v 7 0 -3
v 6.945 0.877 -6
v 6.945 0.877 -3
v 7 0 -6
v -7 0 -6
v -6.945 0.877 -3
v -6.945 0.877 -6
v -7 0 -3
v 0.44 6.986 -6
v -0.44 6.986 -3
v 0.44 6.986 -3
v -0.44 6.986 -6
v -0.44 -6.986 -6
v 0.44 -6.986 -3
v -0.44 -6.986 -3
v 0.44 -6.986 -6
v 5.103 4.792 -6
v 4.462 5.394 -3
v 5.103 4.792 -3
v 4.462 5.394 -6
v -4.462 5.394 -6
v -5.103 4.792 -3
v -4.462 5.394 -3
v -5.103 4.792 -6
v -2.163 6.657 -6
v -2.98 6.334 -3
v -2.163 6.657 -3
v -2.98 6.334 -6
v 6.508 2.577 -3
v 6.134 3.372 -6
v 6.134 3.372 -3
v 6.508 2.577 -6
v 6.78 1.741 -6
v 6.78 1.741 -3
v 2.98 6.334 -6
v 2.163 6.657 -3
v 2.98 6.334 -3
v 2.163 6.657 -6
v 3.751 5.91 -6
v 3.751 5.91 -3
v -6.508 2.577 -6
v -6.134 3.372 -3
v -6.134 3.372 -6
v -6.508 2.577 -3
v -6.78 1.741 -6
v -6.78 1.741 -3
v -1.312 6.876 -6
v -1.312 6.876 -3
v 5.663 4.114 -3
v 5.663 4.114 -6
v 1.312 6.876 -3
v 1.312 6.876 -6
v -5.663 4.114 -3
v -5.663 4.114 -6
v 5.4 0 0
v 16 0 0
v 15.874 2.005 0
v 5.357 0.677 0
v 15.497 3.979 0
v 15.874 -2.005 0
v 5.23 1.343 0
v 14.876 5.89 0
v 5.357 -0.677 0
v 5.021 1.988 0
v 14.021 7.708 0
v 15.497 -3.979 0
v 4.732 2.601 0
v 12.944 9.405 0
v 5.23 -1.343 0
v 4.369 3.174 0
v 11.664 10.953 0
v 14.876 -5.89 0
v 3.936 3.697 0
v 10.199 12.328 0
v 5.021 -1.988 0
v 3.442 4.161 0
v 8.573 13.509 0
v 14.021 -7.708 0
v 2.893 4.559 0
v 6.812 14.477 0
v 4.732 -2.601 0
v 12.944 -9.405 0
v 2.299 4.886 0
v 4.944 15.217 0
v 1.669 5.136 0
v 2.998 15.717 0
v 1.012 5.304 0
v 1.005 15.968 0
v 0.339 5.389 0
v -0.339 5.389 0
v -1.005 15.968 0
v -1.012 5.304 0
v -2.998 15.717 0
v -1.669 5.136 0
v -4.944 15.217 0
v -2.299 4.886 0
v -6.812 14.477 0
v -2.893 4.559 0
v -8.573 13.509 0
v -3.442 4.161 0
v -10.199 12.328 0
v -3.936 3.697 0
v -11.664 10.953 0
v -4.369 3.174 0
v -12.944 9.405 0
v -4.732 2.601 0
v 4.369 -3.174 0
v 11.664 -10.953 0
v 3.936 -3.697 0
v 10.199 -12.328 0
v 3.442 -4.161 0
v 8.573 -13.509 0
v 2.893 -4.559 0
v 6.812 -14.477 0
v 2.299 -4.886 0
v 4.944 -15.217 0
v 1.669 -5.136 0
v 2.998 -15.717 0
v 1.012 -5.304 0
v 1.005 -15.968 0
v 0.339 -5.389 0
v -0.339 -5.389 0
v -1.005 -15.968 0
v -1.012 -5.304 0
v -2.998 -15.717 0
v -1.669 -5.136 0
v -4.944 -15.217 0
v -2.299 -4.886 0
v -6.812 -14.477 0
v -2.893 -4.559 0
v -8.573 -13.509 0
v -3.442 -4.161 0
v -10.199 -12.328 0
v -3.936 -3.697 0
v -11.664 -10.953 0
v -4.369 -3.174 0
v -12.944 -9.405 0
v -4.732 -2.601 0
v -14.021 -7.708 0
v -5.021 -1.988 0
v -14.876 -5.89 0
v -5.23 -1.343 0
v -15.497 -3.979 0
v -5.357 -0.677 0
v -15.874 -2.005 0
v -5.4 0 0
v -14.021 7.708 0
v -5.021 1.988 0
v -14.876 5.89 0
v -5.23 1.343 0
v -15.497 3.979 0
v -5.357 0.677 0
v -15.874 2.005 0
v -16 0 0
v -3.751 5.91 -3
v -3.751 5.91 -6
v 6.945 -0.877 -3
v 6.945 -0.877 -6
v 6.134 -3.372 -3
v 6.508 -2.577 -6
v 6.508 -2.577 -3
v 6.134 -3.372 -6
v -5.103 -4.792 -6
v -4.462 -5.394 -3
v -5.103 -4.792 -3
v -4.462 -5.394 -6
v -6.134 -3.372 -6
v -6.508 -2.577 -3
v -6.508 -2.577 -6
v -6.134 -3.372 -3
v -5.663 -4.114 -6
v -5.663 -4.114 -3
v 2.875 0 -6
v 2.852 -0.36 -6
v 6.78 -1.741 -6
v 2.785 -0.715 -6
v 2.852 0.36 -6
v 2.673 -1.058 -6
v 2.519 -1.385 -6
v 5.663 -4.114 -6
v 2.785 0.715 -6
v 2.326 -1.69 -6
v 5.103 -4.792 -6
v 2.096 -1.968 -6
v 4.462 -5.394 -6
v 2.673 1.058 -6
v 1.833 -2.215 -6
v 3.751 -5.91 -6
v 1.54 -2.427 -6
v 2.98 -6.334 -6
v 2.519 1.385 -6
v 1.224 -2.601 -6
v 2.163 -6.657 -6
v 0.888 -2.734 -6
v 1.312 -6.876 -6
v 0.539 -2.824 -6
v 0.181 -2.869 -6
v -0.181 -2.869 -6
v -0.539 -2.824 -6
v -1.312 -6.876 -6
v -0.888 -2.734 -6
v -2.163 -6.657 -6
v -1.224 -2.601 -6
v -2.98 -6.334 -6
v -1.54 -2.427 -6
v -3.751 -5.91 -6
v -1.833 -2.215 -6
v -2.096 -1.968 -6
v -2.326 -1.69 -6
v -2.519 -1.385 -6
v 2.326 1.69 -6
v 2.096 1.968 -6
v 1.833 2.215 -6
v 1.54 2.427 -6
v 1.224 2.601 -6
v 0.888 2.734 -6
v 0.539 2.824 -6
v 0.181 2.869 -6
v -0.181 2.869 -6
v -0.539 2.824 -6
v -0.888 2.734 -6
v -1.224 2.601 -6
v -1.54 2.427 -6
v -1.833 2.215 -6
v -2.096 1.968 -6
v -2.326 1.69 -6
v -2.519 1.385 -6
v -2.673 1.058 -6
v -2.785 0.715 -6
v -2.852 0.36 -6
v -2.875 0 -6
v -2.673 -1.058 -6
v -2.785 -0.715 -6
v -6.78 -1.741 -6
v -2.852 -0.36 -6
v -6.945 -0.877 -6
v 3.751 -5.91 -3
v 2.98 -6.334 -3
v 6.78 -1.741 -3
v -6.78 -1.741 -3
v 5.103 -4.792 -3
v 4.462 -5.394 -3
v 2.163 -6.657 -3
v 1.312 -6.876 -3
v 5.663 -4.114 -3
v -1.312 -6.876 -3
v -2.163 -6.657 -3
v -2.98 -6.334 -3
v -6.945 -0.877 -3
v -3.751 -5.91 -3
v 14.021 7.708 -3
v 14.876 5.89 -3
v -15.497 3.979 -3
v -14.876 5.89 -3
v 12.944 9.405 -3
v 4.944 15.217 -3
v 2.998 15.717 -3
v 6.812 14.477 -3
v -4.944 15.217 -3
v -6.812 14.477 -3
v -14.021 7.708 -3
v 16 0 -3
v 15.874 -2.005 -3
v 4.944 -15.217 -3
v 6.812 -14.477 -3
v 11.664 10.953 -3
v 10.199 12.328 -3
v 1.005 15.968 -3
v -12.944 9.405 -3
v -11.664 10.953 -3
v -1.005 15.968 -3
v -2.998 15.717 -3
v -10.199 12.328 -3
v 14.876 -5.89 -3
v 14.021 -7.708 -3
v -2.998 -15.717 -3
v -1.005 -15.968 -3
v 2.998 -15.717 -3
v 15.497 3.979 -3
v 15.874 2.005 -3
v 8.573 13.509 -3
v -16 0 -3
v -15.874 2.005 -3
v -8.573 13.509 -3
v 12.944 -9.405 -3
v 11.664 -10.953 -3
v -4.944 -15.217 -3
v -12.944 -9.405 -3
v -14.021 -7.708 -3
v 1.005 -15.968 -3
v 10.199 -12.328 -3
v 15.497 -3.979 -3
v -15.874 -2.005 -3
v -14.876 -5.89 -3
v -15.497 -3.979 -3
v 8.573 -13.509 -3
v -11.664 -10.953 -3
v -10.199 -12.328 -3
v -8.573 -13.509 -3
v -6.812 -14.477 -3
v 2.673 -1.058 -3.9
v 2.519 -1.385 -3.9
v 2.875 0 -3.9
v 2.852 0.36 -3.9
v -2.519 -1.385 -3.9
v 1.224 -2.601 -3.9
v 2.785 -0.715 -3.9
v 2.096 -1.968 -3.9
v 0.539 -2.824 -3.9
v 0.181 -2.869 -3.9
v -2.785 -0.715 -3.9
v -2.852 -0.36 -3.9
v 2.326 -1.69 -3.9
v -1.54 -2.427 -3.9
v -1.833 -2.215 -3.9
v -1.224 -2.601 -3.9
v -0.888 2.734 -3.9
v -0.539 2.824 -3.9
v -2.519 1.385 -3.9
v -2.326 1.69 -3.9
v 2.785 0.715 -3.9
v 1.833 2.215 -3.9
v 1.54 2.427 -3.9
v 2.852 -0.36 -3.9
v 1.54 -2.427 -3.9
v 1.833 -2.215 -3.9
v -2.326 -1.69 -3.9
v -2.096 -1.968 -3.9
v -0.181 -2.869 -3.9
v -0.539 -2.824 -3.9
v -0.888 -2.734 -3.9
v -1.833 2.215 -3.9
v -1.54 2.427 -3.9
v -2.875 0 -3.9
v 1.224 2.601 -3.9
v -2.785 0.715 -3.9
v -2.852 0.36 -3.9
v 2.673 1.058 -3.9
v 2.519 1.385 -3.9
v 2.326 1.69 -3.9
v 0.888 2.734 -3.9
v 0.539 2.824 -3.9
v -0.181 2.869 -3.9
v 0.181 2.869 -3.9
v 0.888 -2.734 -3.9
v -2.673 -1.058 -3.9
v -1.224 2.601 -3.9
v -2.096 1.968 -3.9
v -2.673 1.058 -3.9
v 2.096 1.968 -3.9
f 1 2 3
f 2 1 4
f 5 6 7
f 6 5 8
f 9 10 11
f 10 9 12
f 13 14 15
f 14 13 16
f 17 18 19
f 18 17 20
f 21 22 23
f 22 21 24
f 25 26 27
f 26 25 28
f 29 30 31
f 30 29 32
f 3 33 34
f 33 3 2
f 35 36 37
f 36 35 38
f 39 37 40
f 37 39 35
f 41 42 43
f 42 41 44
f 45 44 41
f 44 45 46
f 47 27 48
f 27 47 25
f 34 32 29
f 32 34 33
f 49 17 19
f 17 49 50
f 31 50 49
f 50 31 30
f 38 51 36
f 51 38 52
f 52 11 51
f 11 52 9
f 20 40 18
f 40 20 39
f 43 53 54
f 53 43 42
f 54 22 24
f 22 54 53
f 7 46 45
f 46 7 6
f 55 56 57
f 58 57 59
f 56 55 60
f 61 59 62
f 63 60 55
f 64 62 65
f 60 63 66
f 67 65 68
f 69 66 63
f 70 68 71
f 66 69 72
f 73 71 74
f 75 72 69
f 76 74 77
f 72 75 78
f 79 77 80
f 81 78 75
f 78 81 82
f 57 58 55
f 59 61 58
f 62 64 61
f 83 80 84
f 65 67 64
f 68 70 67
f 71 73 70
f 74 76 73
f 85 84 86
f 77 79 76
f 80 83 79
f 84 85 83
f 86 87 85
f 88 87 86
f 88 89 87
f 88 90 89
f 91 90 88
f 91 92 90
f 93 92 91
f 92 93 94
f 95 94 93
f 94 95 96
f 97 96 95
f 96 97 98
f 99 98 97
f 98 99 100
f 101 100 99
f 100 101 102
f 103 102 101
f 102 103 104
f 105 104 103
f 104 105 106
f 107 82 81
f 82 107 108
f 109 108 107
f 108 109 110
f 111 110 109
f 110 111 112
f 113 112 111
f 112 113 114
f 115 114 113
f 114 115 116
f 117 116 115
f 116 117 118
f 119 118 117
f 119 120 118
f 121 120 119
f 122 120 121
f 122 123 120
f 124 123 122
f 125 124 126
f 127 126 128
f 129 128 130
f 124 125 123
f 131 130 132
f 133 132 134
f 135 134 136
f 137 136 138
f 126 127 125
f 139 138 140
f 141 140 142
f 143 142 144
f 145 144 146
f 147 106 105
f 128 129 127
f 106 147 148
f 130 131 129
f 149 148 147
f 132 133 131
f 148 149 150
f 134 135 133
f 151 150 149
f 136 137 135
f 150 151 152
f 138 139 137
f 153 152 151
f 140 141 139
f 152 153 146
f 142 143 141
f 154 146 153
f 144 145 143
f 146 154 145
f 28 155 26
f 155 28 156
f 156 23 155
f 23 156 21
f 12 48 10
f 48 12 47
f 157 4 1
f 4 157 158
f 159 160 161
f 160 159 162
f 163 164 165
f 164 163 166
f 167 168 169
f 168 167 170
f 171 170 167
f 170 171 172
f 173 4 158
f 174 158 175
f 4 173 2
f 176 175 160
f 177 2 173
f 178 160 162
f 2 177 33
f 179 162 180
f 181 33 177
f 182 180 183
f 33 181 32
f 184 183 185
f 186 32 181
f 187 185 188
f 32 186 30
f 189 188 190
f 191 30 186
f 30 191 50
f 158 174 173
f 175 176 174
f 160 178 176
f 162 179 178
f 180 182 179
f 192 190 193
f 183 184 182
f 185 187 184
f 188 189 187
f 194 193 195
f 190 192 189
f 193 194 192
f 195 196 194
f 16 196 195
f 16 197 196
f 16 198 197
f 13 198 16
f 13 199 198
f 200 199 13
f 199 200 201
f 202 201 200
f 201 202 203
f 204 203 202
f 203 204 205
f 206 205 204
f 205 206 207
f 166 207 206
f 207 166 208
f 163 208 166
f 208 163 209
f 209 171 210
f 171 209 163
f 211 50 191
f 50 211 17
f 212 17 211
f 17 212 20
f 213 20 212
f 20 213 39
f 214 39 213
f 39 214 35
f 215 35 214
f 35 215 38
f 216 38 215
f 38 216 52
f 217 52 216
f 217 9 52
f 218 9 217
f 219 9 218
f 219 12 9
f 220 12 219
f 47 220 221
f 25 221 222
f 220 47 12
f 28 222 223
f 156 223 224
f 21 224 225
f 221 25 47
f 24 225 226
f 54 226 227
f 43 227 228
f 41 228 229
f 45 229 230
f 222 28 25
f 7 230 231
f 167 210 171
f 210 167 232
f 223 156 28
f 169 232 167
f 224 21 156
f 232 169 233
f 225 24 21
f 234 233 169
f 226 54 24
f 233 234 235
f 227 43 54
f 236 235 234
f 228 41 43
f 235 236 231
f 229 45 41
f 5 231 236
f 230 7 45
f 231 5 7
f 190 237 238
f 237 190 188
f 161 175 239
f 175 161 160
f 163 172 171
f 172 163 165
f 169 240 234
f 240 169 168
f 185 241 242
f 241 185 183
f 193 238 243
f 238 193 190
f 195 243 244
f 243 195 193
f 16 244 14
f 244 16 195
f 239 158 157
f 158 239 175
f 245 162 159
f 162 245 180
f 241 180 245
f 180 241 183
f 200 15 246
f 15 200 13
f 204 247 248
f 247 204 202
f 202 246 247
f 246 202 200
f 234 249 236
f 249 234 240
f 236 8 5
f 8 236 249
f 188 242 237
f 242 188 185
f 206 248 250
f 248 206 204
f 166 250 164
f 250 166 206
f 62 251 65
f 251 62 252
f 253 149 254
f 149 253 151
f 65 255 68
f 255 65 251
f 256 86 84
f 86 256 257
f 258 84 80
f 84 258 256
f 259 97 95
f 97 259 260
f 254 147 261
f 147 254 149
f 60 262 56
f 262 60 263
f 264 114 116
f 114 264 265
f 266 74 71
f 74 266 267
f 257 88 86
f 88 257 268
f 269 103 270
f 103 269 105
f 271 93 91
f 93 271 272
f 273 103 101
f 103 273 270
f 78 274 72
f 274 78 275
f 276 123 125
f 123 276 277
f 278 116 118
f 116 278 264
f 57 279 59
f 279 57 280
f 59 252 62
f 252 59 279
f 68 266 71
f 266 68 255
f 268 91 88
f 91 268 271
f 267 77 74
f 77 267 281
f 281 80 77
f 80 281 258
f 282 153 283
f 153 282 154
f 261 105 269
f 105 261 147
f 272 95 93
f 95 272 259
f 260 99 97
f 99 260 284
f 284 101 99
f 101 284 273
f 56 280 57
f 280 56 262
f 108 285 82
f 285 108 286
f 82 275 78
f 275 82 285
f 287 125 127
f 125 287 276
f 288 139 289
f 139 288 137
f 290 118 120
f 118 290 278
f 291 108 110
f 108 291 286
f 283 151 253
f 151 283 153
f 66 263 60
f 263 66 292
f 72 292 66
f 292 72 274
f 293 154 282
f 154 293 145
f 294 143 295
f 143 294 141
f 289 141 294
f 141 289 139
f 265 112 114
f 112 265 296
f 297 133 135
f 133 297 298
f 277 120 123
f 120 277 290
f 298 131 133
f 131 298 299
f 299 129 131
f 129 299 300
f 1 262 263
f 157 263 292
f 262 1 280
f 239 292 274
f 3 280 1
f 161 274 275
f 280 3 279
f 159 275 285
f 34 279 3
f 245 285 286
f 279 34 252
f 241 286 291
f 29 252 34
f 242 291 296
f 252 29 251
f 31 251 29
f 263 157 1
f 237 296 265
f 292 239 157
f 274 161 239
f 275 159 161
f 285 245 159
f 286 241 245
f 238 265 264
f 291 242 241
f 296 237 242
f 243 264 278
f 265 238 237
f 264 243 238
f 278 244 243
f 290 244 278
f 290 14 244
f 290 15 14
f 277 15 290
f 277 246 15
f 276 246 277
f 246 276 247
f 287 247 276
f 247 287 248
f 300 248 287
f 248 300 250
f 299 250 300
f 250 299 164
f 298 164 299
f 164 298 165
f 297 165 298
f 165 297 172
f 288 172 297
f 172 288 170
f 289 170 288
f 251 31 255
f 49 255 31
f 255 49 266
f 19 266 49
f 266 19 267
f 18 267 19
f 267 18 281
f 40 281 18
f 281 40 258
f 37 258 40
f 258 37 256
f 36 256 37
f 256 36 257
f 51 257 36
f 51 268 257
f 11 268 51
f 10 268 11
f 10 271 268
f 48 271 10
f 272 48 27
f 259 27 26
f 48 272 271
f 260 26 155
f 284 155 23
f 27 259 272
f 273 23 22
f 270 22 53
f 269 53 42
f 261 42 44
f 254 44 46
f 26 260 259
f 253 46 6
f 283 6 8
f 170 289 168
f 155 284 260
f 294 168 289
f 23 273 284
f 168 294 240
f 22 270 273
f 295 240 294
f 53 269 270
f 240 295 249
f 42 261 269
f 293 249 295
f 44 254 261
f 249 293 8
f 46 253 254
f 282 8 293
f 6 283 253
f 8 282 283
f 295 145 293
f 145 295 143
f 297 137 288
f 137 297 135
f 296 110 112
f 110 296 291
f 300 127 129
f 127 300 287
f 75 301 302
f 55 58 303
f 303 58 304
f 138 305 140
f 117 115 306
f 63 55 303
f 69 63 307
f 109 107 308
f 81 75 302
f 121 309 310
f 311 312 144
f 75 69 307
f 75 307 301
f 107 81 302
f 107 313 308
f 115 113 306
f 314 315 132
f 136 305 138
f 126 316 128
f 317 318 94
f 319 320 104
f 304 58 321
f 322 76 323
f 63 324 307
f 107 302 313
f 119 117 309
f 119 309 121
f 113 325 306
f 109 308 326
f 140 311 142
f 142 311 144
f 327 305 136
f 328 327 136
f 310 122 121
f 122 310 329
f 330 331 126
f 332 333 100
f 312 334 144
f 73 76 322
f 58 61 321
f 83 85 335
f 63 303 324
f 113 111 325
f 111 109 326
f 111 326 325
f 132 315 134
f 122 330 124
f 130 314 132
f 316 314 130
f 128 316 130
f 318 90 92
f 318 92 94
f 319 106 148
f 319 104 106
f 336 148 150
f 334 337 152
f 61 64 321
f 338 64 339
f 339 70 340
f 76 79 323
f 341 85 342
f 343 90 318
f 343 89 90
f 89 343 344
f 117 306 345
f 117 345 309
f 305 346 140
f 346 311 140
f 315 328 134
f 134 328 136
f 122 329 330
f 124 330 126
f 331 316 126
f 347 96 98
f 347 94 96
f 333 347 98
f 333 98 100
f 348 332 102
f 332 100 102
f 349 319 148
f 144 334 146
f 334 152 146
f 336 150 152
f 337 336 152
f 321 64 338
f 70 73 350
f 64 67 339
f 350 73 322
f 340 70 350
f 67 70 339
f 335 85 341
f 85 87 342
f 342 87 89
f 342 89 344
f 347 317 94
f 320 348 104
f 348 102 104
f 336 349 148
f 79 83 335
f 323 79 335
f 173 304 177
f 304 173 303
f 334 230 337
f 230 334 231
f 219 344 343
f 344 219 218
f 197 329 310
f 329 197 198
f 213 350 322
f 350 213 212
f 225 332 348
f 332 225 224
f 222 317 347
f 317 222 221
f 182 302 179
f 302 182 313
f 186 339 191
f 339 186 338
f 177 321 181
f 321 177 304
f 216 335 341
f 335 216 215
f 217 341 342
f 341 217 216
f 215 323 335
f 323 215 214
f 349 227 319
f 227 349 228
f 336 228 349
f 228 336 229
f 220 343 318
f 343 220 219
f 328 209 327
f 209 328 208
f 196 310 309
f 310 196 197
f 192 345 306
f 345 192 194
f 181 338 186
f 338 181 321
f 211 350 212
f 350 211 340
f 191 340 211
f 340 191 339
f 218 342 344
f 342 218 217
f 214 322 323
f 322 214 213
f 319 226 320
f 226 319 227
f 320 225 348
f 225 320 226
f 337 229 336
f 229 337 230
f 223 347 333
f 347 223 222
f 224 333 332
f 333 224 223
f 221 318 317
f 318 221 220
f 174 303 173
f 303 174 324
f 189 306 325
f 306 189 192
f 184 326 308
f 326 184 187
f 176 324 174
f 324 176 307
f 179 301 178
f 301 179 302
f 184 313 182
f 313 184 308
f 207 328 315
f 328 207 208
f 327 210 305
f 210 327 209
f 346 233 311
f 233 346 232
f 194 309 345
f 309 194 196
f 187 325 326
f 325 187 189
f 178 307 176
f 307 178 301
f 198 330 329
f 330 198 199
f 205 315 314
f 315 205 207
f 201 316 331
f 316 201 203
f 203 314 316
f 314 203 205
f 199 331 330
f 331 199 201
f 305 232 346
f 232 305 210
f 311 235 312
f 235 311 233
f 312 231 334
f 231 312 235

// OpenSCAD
$fn = 50;


difference() {
	union() {
		translate(v = [0, 0, -6.0000000000]) {
			cylinder(h = 6, r = 7.0000000000);
		}
		translate(v = [0, 0, -3.0000000000]) {
			cylinder(h = 3, r = 16.0000000000);
		}
	}
	union() {
		translate(v = [0, 0, 0]) {
			rotate(a = [0, 0, 0]) {
				difference() {
					union() {
						#translate(v = [0, 0, -6.0000000000]) {
							cylinder(h = 6, r = 2.6000000000);
						}
						#translate(v = [0, 0, -3.9000000000]) {
							cylinder(h = 3.9000000000, r1 = 2.8750000000, r2 = 5.4000000000);
						}
						#translate(v = [0, 0, -6.0000000000]) {
							cylinder(h = 6, r = 2.8750000000);
						}
						#translate(v = [0, 0, -6.0000000000]) {
							cylinder(h = 6, r = 2.6000000000);
						}
					}
					union();
				}
			}
		}
	}
}
